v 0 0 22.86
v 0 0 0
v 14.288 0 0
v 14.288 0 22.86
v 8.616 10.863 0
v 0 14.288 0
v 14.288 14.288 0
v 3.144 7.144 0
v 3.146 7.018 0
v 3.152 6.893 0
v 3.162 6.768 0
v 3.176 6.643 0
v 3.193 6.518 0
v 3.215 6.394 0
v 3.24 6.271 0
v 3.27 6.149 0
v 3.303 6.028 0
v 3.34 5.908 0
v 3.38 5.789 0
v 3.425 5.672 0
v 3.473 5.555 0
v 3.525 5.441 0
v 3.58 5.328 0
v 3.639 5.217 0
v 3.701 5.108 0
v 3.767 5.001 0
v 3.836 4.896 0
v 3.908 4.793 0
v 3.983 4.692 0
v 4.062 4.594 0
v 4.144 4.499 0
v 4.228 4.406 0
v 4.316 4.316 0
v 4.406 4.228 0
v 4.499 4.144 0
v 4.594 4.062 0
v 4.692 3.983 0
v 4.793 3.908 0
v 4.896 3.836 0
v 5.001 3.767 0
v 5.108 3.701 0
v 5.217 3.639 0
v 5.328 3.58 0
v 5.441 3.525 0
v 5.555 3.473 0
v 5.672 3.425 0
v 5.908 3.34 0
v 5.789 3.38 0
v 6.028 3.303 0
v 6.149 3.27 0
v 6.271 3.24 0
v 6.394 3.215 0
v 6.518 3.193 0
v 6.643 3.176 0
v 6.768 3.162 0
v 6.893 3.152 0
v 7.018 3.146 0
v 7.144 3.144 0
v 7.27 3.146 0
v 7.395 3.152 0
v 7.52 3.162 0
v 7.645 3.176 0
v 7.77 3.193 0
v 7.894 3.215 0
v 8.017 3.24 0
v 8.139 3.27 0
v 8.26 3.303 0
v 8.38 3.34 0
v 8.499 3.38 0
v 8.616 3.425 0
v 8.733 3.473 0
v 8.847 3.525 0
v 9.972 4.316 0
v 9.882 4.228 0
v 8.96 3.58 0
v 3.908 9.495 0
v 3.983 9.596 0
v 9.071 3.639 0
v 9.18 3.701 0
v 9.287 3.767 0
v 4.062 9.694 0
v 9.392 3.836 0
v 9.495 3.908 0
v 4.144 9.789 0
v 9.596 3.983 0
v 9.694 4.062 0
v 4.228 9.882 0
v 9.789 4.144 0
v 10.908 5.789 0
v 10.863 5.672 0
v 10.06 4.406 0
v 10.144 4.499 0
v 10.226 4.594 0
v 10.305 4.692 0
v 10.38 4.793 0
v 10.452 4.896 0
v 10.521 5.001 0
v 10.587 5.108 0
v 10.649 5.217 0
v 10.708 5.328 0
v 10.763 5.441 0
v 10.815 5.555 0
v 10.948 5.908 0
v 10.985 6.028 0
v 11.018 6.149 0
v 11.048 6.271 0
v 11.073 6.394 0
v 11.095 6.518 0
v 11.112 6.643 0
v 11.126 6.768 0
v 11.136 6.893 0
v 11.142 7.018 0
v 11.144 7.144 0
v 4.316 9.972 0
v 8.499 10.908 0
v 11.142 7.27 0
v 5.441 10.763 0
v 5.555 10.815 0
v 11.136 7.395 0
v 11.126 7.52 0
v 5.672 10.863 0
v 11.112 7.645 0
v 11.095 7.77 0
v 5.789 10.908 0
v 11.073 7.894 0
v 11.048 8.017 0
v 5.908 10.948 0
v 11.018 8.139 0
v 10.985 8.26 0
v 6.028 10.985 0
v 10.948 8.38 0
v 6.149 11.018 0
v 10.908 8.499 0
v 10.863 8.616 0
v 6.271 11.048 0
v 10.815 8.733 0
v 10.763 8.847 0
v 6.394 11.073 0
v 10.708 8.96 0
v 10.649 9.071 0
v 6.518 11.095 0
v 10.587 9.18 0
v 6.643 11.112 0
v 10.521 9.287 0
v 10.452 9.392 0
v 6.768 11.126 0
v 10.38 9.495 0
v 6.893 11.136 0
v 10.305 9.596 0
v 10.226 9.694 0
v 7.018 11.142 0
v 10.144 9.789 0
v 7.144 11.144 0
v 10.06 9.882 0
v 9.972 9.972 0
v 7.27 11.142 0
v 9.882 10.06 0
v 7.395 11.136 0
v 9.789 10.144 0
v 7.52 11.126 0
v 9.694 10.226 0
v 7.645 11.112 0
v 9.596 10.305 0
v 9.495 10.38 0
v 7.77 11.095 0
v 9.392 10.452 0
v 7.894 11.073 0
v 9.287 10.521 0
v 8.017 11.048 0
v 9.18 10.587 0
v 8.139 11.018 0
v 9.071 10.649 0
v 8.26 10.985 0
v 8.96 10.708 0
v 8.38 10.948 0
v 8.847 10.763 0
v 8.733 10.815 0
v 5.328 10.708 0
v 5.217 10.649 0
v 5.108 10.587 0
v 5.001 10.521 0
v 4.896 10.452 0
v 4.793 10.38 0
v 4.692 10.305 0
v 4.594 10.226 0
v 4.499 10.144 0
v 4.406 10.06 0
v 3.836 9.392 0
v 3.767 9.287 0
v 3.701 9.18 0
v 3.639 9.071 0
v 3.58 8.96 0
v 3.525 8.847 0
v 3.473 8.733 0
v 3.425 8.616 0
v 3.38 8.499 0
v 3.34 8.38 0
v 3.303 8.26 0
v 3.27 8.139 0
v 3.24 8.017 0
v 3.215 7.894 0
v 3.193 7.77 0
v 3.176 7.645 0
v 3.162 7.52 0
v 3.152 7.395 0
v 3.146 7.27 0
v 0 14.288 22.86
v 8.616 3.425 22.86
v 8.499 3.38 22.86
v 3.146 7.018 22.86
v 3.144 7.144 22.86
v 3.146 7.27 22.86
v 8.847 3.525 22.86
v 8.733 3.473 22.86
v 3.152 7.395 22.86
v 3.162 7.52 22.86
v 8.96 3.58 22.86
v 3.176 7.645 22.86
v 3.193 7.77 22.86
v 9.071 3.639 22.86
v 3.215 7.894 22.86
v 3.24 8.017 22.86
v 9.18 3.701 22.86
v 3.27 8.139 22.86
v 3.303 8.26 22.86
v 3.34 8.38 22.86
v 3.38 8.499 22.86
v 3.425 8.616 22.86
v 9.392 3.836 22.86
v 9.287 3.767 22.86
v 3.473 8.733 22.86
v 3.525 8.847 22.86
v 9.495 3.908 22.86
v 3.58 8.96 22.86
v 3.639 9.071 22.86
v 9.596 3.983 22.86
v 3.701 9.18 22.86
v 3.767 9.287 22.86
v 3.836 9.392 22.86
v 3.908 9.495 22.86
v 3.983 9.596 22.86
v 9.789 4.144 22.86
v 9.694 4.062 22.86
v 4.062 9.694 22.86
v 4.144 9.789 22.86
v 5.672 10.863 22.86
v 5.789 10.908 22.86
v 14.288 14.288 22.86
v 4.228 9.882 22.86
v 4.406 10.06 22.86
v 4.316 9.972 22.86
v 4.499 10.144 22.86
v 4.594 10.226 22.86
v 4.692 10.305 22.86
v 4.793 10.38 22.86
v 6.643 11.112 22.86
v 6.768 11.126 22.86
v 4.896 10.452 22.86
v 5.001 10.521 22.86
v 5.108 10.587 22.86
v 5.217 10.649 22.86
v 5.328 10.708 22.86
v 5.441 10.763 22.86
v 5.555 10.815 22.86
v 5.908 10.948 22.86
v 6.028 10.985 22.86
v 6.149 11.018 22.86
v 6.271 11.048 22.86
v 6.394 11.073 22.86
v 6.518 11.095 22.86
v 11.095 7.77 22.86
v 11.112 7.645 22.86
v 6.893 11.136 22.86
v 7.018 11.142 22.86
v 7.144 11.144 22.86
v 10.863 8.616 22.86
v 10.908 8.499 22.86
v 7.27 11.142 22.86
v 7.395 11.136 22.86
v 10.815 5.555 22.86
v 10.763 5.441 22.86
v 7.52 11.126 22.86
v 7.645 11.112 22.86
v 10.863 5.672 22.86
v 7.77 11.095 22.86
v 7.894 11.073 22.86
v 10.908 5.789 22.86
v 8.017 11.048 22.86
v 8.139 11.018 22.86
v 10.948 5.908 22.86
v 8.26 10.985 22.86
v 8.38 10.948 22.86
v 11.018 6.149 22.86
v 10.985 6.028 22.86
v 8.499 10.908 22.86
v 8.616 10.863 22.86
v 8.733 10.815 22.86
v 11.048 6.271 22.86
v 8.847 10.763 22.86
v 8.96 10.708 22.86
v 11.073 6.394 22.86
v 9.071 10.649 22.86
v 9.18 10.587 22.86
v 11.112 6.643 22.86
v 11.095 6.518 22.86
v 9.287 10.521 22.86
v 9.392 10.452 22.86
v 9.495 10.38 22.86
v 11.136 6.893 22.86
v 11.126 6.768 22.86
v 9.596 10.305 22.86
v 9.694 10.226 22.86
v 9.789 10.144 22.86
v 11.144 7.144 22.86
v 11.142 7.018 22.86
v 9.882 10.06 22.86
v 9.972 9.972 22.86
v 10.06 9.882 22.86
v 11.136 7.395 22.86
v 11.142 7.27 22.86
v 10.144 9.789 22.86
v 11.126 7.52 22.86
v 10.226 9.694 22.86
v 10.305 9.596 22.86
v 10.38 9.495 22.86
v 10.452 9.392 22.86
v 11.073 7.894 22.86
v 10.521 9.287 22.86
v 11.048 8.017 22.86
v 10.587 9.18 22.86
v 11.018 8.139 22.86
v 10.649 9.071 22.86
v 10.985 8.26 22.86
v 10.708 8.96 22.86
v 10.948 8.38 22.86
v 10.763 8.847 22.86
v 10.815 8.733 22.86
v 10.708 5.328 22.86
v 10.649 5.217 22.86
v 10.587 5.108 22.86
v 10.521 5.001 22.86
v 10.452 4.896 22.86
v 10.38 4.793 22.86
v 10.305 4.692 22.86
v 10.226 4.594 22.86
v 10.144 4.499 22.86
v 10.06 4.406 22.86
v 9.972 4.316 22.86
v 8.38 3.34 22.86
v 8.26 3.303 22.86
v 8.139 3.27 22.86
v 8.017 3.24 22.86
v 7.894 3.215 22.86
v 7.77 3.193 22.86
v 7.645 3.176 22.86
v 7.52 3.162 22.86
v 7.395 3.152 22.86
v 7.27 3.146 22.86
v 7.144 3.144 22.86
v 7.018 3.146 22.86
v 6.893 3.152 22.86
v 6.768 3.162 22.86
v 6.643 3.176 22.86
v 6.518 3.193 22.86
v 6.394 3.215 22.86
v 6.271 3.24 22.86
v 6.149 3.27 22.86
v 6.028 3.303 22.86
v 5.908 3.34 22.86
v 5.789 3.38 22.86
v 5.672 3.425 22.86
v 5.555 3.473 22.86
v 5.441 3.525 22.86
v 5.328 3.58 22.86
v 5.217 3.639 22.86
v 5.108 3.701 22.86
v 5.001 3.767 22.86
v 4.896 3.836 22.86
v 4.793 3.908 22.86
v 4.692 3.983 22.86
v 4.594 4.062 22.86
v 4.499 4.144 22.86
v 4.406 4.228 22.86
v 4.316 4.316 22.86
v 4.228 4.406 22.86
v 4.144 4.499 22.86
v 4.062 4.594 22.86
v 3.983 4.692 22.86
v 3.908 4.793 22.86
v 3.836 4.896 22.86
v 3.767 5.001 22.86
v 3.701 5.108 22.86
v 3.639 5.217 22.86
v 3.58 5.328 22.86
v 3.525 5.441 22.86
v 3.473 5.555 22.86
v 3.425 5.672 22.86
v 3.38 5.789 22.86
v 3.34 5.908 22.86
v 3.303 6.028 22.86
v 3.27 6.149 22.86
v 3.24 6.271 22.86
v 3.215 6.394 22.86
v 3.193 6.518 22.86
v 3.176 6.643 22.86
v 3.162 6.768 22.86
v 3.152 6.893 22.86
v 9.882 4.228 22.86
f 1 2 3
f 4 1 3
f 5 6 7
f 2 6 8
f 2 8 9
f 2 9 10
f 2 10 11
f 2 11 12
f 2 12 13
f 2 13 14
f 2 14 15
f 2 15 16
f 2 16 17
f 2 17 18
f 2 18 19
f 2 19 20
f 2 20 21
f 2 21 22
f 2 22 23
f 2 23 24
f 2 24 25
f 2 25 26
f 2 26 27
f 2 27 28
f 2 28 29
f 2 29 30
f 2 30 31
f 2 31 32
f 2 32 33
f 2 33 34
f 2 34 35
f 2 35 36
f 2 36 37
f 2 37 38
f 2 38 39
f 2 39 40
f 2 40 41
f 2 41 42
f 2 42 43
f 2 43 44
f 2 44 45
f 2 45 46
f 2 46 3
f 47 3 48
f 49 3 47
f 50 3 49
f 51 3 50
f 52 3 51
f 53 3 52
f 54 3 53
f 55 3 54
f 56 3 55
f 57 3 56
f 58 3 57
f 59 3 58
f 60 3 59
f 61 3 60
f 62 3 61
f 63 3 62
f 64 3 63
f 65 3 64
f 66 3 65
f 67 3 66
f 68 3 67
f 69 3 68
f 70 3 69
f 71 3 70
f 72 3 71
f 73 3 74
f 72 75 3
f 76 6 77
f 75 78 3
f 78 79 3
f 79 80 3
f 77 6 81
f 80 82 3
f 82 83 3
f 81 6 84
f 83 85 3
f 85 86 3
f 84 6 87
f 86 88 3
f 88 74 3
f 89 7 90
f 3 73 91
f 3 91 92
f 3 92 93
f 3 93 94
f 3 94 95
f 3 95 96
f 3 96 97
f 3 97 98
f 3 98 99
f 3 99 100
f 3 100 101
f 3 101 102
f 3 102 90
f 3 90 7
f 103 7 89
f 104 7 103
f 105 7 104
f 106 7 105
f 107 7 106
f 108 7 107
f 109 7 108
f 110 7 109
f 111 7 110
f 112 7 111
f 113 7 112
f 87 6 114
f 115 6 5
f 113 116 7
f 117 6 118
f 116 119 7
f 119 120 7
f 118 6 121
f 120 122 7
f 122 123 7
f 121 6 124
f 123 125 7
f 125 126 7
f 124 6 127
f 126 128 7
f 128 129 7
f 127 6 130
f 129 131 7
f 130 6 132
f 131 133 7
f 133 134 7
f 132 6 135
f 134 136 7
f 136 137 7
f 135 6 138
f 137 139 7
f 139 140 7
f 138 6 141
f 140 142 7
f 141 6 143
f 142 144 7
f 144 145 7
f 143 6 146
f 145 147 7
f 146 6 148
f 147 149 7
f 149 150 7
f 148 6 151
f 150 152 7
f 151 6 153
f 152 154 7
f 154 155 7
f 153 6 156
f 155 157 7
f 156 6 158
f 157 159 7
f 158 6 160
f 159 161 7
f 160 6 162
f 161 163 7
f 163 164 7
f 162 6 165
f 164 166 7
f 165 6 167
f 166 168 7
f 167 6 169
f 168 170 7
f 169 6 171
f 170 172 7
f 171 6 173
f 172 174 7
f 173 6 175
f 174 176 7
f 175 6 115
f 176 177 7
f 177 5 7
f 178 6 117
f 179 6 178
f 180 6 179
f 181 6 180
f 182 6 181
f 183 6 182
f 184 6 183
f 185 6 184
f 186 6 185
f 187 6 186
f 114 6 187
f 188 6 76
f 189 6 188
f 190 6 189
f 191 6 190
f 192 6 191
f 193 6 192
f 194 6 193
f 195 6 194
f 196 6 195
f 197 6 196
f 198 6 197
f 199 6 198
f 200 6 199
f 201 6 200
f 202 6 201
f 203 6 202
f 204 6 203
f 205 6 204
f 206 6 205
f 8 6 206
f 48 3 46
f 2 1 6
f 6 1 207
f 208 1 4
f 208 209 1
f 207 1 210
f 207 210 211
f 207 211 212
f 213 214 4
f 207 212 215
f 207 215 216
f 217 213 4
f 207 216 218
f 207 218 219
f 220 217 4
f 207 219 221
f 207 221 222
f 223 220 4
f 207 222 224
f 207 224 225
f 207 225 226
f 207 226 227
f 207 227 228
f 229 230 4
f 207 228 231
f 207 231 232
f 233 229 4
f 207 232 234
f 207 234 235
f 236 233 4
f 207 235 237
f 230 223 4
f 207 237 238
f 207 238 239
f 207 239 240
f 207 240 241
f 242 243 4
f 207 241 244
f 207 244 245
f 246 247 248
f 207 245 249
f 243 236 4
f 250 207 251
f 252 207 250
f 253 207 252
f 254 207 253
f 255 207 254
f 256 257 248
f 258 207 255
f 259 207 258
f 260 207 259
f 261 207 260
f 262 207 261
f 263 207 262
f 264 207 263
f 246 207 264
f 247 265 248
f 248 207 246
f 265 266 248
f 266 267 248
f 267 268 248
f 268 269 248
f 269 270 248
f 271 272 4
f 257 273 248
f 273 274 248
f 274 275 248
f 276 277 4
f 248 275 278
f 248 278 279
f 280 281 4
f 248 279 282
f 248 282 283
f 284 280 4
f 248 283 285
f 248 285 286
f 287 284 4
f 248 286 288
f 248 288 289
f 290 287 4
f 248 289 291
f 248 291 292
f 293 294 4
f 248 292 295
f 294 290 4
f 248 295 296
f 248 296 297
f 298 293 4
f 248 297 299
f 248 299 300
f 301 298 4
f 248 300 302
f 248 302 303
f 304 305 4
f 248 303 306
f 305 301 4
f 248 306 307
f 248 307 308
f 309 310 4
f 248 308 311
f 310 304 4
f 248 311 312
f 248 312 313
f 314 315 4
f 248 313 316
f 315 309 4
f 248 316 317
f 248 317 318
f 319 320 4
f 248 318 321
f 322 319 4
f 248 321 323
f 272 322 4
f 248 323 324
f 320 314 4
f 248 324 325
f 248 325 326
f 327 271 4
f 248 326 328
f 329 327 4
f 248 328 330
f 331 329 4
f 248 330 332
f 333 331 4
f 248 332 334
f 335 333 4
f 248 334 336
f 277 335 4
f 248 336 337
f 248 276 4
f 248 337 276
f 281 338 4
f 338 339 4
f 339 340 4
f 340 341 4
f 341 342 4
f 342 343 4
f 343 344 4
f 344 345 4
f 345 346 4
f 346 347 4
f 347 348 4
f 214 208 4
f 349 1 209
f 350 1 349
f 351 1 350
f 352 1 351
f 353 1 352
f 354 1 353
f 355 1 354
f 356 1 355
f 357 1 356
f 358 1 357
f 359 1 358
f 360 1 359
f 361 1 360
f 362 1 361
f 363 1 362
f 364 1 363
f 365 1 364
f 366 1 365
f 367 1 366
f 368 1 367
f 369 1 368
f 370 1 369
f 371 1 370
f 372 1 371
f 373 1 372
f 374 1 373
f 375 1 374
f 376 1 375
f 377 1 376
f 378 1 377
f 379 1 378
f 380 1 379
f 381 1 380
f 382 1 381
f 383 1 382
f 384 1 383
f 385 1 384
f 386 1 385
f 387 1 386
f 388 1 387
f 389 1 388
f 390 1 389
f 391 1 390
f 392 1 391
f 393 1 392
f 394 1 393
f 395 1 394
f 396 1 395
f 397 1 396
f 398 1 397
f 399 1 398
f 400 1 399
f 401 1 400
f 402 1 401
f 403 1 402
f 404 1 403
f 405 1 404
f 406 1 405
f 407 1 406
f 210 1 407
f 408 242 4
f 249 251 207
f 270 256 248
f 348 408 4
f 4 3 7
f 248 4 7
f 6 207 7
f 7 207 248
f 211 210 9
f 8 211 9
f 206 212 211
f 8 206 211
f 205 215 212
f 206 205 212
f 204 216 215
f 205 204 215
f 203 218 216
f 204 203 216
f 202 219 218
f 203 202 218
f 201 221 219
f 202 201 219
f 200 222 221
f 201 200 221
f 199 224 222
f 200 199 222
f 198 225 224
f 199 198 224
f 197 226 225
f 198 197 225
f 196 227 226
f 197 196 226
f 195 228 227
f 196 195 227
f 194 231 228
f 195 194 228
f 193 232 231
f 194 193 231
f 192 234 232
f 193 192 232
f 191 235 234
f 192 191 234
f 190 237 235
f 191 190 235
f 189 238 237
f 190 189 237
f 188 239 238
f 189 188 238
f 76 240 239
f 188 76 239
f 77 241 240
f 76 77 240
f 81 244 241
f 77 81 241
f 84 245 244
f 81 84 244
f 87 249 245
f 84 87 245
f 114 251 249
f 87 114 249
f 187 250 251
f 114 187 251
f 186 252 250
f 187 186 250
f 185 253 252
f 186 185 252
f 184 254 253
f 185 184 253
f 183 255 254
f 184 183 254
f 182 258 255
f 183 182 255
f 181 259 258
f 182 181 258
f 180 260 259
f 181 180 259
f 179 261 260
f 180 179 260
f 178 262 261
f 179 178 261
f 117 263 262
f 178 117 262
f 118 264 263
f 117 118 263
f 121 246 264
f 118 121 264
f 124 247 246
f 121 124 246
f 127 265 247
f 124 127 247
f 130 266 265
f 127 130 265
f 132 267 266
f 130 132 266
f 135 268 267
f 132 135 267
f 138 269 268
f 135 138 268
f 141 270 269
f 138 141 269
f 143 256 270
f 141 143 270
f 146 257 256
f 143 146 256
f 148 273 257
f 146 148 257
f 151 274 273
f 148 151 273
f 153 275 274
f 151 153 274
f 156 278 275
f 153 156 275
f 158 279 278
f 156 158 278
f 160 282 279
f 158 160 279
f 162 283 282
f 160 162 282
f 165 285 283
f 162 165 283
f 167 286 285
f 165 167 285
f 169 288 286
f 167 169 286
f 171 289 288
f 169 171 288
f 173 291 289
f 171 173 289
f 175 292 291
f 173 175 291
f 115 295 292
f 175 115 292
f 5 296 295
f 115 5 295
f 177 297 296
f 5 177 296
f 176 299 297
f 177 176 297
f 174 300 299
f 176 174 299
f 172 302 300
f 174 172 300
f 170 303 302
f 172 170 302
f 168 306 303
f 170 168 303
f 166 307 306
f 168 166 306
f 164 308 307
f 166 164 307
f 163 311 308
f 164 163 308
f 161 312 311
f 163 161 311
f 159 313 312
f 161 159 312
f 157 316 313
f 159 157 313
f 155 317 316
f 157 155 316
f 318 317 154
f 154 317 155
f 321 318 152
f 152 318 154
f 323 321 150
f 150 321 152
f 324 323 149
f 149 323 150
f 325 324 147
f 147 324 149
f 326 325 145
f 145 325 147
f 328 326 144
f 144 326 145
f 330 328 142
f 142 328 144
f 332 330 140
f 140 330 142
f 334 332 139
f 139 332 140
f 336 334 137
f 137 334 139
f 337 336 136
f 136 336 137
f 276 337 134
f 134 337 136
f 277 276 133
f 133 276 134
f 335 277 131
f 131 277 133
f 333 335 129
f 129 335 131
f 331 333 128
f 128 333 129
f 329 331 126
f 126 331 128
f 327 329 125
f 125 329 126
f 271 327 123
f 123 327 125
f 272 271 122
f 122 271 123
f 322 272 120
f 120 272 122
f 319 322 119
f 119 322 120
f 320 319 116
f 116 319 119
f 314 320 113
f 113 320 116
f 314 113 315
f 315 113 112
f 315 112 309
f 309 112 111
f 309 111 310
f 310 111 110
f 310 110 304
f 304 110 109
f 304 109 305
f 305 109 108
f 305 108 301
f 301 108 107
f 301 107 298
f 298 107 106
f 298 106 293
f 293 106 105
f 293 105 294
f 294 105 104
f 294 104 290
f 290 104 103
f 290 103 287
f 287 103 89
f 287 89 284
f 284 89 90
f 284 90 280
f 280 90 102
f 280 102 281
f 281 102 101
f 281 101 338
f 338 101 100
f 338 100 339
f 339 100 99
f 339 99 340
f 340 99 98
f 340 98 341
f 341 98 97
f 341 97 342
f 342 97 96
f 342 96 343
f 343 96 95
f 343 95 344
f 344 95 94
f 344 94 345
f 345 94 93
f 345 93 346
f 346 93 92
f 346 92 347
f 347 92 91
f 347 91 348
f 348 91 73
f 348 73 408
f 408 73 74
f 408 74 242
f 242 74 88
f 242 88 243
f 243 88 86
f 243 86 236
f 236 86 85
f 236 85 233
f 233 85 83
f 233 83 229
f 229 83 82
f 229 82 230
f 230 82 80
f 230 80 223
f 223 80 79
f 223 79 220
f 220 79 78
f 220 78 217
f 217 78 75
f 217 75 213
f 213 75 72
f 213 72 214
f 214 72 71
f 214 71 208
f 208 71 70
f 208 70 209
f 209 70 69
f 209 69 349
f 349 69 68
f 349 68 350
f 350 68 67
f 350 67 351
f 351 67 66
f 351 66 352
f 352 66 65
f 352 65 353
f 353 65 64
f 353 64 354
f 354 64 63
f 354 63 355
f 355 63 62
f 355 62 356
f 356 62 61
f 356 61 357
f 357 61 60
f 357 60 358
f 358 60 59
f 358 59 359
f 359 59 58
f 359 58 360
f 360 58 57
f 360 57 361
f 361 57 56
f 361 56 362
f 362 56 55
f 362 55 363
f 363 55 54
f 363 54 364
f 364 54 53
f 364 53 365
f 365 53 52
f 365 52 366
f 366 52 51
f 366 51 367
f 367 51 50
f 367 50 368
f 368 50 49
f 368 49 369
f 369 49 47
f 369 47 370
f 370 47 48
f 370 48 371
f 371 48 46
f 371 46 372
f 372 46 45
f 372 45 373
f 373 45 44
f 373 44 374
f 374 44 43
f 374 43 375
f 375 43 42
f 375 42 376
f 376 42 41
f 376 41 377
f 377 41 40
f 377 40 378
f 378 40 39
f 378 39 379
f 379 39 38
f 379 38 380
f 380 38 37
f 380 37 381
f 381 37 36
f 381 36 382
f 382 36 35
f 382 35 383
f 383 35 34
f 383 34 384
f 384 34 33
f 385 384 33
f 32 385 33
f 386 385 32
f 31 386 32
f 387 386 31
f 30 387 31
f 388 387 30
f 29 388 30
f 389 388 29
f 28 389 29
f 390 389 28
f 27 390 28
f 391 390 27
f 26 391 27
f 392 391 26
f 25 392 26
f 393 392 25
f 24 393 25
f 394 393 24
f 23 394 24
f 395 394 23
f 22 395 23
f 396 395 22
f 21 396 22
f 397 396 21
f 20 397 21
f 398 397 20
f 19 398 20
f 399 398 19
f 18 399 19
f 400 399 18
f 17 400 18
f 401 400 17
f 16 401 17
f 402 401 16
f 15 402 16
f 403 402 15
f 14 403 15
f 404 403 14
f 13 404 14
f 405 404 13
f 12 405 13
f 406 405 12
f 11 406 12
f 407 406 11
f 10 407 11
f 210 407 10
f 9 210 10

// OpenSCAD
width = 25.4 * 9/16;
depth = 25.4 * 9/16;
height = 0.9 * 25.4;
bolt = 8;

#difference()
{
linear_extrude(height = height )
{
	polygon(points=[[0, 0],[width, 0],[width, depth], [0, depth]]);

}

linear_extrude(height = height)
{
	translate([width/2, depth/2,0])
	{
		circle($fn = 200, r = bolt/2);
	}
}
}
